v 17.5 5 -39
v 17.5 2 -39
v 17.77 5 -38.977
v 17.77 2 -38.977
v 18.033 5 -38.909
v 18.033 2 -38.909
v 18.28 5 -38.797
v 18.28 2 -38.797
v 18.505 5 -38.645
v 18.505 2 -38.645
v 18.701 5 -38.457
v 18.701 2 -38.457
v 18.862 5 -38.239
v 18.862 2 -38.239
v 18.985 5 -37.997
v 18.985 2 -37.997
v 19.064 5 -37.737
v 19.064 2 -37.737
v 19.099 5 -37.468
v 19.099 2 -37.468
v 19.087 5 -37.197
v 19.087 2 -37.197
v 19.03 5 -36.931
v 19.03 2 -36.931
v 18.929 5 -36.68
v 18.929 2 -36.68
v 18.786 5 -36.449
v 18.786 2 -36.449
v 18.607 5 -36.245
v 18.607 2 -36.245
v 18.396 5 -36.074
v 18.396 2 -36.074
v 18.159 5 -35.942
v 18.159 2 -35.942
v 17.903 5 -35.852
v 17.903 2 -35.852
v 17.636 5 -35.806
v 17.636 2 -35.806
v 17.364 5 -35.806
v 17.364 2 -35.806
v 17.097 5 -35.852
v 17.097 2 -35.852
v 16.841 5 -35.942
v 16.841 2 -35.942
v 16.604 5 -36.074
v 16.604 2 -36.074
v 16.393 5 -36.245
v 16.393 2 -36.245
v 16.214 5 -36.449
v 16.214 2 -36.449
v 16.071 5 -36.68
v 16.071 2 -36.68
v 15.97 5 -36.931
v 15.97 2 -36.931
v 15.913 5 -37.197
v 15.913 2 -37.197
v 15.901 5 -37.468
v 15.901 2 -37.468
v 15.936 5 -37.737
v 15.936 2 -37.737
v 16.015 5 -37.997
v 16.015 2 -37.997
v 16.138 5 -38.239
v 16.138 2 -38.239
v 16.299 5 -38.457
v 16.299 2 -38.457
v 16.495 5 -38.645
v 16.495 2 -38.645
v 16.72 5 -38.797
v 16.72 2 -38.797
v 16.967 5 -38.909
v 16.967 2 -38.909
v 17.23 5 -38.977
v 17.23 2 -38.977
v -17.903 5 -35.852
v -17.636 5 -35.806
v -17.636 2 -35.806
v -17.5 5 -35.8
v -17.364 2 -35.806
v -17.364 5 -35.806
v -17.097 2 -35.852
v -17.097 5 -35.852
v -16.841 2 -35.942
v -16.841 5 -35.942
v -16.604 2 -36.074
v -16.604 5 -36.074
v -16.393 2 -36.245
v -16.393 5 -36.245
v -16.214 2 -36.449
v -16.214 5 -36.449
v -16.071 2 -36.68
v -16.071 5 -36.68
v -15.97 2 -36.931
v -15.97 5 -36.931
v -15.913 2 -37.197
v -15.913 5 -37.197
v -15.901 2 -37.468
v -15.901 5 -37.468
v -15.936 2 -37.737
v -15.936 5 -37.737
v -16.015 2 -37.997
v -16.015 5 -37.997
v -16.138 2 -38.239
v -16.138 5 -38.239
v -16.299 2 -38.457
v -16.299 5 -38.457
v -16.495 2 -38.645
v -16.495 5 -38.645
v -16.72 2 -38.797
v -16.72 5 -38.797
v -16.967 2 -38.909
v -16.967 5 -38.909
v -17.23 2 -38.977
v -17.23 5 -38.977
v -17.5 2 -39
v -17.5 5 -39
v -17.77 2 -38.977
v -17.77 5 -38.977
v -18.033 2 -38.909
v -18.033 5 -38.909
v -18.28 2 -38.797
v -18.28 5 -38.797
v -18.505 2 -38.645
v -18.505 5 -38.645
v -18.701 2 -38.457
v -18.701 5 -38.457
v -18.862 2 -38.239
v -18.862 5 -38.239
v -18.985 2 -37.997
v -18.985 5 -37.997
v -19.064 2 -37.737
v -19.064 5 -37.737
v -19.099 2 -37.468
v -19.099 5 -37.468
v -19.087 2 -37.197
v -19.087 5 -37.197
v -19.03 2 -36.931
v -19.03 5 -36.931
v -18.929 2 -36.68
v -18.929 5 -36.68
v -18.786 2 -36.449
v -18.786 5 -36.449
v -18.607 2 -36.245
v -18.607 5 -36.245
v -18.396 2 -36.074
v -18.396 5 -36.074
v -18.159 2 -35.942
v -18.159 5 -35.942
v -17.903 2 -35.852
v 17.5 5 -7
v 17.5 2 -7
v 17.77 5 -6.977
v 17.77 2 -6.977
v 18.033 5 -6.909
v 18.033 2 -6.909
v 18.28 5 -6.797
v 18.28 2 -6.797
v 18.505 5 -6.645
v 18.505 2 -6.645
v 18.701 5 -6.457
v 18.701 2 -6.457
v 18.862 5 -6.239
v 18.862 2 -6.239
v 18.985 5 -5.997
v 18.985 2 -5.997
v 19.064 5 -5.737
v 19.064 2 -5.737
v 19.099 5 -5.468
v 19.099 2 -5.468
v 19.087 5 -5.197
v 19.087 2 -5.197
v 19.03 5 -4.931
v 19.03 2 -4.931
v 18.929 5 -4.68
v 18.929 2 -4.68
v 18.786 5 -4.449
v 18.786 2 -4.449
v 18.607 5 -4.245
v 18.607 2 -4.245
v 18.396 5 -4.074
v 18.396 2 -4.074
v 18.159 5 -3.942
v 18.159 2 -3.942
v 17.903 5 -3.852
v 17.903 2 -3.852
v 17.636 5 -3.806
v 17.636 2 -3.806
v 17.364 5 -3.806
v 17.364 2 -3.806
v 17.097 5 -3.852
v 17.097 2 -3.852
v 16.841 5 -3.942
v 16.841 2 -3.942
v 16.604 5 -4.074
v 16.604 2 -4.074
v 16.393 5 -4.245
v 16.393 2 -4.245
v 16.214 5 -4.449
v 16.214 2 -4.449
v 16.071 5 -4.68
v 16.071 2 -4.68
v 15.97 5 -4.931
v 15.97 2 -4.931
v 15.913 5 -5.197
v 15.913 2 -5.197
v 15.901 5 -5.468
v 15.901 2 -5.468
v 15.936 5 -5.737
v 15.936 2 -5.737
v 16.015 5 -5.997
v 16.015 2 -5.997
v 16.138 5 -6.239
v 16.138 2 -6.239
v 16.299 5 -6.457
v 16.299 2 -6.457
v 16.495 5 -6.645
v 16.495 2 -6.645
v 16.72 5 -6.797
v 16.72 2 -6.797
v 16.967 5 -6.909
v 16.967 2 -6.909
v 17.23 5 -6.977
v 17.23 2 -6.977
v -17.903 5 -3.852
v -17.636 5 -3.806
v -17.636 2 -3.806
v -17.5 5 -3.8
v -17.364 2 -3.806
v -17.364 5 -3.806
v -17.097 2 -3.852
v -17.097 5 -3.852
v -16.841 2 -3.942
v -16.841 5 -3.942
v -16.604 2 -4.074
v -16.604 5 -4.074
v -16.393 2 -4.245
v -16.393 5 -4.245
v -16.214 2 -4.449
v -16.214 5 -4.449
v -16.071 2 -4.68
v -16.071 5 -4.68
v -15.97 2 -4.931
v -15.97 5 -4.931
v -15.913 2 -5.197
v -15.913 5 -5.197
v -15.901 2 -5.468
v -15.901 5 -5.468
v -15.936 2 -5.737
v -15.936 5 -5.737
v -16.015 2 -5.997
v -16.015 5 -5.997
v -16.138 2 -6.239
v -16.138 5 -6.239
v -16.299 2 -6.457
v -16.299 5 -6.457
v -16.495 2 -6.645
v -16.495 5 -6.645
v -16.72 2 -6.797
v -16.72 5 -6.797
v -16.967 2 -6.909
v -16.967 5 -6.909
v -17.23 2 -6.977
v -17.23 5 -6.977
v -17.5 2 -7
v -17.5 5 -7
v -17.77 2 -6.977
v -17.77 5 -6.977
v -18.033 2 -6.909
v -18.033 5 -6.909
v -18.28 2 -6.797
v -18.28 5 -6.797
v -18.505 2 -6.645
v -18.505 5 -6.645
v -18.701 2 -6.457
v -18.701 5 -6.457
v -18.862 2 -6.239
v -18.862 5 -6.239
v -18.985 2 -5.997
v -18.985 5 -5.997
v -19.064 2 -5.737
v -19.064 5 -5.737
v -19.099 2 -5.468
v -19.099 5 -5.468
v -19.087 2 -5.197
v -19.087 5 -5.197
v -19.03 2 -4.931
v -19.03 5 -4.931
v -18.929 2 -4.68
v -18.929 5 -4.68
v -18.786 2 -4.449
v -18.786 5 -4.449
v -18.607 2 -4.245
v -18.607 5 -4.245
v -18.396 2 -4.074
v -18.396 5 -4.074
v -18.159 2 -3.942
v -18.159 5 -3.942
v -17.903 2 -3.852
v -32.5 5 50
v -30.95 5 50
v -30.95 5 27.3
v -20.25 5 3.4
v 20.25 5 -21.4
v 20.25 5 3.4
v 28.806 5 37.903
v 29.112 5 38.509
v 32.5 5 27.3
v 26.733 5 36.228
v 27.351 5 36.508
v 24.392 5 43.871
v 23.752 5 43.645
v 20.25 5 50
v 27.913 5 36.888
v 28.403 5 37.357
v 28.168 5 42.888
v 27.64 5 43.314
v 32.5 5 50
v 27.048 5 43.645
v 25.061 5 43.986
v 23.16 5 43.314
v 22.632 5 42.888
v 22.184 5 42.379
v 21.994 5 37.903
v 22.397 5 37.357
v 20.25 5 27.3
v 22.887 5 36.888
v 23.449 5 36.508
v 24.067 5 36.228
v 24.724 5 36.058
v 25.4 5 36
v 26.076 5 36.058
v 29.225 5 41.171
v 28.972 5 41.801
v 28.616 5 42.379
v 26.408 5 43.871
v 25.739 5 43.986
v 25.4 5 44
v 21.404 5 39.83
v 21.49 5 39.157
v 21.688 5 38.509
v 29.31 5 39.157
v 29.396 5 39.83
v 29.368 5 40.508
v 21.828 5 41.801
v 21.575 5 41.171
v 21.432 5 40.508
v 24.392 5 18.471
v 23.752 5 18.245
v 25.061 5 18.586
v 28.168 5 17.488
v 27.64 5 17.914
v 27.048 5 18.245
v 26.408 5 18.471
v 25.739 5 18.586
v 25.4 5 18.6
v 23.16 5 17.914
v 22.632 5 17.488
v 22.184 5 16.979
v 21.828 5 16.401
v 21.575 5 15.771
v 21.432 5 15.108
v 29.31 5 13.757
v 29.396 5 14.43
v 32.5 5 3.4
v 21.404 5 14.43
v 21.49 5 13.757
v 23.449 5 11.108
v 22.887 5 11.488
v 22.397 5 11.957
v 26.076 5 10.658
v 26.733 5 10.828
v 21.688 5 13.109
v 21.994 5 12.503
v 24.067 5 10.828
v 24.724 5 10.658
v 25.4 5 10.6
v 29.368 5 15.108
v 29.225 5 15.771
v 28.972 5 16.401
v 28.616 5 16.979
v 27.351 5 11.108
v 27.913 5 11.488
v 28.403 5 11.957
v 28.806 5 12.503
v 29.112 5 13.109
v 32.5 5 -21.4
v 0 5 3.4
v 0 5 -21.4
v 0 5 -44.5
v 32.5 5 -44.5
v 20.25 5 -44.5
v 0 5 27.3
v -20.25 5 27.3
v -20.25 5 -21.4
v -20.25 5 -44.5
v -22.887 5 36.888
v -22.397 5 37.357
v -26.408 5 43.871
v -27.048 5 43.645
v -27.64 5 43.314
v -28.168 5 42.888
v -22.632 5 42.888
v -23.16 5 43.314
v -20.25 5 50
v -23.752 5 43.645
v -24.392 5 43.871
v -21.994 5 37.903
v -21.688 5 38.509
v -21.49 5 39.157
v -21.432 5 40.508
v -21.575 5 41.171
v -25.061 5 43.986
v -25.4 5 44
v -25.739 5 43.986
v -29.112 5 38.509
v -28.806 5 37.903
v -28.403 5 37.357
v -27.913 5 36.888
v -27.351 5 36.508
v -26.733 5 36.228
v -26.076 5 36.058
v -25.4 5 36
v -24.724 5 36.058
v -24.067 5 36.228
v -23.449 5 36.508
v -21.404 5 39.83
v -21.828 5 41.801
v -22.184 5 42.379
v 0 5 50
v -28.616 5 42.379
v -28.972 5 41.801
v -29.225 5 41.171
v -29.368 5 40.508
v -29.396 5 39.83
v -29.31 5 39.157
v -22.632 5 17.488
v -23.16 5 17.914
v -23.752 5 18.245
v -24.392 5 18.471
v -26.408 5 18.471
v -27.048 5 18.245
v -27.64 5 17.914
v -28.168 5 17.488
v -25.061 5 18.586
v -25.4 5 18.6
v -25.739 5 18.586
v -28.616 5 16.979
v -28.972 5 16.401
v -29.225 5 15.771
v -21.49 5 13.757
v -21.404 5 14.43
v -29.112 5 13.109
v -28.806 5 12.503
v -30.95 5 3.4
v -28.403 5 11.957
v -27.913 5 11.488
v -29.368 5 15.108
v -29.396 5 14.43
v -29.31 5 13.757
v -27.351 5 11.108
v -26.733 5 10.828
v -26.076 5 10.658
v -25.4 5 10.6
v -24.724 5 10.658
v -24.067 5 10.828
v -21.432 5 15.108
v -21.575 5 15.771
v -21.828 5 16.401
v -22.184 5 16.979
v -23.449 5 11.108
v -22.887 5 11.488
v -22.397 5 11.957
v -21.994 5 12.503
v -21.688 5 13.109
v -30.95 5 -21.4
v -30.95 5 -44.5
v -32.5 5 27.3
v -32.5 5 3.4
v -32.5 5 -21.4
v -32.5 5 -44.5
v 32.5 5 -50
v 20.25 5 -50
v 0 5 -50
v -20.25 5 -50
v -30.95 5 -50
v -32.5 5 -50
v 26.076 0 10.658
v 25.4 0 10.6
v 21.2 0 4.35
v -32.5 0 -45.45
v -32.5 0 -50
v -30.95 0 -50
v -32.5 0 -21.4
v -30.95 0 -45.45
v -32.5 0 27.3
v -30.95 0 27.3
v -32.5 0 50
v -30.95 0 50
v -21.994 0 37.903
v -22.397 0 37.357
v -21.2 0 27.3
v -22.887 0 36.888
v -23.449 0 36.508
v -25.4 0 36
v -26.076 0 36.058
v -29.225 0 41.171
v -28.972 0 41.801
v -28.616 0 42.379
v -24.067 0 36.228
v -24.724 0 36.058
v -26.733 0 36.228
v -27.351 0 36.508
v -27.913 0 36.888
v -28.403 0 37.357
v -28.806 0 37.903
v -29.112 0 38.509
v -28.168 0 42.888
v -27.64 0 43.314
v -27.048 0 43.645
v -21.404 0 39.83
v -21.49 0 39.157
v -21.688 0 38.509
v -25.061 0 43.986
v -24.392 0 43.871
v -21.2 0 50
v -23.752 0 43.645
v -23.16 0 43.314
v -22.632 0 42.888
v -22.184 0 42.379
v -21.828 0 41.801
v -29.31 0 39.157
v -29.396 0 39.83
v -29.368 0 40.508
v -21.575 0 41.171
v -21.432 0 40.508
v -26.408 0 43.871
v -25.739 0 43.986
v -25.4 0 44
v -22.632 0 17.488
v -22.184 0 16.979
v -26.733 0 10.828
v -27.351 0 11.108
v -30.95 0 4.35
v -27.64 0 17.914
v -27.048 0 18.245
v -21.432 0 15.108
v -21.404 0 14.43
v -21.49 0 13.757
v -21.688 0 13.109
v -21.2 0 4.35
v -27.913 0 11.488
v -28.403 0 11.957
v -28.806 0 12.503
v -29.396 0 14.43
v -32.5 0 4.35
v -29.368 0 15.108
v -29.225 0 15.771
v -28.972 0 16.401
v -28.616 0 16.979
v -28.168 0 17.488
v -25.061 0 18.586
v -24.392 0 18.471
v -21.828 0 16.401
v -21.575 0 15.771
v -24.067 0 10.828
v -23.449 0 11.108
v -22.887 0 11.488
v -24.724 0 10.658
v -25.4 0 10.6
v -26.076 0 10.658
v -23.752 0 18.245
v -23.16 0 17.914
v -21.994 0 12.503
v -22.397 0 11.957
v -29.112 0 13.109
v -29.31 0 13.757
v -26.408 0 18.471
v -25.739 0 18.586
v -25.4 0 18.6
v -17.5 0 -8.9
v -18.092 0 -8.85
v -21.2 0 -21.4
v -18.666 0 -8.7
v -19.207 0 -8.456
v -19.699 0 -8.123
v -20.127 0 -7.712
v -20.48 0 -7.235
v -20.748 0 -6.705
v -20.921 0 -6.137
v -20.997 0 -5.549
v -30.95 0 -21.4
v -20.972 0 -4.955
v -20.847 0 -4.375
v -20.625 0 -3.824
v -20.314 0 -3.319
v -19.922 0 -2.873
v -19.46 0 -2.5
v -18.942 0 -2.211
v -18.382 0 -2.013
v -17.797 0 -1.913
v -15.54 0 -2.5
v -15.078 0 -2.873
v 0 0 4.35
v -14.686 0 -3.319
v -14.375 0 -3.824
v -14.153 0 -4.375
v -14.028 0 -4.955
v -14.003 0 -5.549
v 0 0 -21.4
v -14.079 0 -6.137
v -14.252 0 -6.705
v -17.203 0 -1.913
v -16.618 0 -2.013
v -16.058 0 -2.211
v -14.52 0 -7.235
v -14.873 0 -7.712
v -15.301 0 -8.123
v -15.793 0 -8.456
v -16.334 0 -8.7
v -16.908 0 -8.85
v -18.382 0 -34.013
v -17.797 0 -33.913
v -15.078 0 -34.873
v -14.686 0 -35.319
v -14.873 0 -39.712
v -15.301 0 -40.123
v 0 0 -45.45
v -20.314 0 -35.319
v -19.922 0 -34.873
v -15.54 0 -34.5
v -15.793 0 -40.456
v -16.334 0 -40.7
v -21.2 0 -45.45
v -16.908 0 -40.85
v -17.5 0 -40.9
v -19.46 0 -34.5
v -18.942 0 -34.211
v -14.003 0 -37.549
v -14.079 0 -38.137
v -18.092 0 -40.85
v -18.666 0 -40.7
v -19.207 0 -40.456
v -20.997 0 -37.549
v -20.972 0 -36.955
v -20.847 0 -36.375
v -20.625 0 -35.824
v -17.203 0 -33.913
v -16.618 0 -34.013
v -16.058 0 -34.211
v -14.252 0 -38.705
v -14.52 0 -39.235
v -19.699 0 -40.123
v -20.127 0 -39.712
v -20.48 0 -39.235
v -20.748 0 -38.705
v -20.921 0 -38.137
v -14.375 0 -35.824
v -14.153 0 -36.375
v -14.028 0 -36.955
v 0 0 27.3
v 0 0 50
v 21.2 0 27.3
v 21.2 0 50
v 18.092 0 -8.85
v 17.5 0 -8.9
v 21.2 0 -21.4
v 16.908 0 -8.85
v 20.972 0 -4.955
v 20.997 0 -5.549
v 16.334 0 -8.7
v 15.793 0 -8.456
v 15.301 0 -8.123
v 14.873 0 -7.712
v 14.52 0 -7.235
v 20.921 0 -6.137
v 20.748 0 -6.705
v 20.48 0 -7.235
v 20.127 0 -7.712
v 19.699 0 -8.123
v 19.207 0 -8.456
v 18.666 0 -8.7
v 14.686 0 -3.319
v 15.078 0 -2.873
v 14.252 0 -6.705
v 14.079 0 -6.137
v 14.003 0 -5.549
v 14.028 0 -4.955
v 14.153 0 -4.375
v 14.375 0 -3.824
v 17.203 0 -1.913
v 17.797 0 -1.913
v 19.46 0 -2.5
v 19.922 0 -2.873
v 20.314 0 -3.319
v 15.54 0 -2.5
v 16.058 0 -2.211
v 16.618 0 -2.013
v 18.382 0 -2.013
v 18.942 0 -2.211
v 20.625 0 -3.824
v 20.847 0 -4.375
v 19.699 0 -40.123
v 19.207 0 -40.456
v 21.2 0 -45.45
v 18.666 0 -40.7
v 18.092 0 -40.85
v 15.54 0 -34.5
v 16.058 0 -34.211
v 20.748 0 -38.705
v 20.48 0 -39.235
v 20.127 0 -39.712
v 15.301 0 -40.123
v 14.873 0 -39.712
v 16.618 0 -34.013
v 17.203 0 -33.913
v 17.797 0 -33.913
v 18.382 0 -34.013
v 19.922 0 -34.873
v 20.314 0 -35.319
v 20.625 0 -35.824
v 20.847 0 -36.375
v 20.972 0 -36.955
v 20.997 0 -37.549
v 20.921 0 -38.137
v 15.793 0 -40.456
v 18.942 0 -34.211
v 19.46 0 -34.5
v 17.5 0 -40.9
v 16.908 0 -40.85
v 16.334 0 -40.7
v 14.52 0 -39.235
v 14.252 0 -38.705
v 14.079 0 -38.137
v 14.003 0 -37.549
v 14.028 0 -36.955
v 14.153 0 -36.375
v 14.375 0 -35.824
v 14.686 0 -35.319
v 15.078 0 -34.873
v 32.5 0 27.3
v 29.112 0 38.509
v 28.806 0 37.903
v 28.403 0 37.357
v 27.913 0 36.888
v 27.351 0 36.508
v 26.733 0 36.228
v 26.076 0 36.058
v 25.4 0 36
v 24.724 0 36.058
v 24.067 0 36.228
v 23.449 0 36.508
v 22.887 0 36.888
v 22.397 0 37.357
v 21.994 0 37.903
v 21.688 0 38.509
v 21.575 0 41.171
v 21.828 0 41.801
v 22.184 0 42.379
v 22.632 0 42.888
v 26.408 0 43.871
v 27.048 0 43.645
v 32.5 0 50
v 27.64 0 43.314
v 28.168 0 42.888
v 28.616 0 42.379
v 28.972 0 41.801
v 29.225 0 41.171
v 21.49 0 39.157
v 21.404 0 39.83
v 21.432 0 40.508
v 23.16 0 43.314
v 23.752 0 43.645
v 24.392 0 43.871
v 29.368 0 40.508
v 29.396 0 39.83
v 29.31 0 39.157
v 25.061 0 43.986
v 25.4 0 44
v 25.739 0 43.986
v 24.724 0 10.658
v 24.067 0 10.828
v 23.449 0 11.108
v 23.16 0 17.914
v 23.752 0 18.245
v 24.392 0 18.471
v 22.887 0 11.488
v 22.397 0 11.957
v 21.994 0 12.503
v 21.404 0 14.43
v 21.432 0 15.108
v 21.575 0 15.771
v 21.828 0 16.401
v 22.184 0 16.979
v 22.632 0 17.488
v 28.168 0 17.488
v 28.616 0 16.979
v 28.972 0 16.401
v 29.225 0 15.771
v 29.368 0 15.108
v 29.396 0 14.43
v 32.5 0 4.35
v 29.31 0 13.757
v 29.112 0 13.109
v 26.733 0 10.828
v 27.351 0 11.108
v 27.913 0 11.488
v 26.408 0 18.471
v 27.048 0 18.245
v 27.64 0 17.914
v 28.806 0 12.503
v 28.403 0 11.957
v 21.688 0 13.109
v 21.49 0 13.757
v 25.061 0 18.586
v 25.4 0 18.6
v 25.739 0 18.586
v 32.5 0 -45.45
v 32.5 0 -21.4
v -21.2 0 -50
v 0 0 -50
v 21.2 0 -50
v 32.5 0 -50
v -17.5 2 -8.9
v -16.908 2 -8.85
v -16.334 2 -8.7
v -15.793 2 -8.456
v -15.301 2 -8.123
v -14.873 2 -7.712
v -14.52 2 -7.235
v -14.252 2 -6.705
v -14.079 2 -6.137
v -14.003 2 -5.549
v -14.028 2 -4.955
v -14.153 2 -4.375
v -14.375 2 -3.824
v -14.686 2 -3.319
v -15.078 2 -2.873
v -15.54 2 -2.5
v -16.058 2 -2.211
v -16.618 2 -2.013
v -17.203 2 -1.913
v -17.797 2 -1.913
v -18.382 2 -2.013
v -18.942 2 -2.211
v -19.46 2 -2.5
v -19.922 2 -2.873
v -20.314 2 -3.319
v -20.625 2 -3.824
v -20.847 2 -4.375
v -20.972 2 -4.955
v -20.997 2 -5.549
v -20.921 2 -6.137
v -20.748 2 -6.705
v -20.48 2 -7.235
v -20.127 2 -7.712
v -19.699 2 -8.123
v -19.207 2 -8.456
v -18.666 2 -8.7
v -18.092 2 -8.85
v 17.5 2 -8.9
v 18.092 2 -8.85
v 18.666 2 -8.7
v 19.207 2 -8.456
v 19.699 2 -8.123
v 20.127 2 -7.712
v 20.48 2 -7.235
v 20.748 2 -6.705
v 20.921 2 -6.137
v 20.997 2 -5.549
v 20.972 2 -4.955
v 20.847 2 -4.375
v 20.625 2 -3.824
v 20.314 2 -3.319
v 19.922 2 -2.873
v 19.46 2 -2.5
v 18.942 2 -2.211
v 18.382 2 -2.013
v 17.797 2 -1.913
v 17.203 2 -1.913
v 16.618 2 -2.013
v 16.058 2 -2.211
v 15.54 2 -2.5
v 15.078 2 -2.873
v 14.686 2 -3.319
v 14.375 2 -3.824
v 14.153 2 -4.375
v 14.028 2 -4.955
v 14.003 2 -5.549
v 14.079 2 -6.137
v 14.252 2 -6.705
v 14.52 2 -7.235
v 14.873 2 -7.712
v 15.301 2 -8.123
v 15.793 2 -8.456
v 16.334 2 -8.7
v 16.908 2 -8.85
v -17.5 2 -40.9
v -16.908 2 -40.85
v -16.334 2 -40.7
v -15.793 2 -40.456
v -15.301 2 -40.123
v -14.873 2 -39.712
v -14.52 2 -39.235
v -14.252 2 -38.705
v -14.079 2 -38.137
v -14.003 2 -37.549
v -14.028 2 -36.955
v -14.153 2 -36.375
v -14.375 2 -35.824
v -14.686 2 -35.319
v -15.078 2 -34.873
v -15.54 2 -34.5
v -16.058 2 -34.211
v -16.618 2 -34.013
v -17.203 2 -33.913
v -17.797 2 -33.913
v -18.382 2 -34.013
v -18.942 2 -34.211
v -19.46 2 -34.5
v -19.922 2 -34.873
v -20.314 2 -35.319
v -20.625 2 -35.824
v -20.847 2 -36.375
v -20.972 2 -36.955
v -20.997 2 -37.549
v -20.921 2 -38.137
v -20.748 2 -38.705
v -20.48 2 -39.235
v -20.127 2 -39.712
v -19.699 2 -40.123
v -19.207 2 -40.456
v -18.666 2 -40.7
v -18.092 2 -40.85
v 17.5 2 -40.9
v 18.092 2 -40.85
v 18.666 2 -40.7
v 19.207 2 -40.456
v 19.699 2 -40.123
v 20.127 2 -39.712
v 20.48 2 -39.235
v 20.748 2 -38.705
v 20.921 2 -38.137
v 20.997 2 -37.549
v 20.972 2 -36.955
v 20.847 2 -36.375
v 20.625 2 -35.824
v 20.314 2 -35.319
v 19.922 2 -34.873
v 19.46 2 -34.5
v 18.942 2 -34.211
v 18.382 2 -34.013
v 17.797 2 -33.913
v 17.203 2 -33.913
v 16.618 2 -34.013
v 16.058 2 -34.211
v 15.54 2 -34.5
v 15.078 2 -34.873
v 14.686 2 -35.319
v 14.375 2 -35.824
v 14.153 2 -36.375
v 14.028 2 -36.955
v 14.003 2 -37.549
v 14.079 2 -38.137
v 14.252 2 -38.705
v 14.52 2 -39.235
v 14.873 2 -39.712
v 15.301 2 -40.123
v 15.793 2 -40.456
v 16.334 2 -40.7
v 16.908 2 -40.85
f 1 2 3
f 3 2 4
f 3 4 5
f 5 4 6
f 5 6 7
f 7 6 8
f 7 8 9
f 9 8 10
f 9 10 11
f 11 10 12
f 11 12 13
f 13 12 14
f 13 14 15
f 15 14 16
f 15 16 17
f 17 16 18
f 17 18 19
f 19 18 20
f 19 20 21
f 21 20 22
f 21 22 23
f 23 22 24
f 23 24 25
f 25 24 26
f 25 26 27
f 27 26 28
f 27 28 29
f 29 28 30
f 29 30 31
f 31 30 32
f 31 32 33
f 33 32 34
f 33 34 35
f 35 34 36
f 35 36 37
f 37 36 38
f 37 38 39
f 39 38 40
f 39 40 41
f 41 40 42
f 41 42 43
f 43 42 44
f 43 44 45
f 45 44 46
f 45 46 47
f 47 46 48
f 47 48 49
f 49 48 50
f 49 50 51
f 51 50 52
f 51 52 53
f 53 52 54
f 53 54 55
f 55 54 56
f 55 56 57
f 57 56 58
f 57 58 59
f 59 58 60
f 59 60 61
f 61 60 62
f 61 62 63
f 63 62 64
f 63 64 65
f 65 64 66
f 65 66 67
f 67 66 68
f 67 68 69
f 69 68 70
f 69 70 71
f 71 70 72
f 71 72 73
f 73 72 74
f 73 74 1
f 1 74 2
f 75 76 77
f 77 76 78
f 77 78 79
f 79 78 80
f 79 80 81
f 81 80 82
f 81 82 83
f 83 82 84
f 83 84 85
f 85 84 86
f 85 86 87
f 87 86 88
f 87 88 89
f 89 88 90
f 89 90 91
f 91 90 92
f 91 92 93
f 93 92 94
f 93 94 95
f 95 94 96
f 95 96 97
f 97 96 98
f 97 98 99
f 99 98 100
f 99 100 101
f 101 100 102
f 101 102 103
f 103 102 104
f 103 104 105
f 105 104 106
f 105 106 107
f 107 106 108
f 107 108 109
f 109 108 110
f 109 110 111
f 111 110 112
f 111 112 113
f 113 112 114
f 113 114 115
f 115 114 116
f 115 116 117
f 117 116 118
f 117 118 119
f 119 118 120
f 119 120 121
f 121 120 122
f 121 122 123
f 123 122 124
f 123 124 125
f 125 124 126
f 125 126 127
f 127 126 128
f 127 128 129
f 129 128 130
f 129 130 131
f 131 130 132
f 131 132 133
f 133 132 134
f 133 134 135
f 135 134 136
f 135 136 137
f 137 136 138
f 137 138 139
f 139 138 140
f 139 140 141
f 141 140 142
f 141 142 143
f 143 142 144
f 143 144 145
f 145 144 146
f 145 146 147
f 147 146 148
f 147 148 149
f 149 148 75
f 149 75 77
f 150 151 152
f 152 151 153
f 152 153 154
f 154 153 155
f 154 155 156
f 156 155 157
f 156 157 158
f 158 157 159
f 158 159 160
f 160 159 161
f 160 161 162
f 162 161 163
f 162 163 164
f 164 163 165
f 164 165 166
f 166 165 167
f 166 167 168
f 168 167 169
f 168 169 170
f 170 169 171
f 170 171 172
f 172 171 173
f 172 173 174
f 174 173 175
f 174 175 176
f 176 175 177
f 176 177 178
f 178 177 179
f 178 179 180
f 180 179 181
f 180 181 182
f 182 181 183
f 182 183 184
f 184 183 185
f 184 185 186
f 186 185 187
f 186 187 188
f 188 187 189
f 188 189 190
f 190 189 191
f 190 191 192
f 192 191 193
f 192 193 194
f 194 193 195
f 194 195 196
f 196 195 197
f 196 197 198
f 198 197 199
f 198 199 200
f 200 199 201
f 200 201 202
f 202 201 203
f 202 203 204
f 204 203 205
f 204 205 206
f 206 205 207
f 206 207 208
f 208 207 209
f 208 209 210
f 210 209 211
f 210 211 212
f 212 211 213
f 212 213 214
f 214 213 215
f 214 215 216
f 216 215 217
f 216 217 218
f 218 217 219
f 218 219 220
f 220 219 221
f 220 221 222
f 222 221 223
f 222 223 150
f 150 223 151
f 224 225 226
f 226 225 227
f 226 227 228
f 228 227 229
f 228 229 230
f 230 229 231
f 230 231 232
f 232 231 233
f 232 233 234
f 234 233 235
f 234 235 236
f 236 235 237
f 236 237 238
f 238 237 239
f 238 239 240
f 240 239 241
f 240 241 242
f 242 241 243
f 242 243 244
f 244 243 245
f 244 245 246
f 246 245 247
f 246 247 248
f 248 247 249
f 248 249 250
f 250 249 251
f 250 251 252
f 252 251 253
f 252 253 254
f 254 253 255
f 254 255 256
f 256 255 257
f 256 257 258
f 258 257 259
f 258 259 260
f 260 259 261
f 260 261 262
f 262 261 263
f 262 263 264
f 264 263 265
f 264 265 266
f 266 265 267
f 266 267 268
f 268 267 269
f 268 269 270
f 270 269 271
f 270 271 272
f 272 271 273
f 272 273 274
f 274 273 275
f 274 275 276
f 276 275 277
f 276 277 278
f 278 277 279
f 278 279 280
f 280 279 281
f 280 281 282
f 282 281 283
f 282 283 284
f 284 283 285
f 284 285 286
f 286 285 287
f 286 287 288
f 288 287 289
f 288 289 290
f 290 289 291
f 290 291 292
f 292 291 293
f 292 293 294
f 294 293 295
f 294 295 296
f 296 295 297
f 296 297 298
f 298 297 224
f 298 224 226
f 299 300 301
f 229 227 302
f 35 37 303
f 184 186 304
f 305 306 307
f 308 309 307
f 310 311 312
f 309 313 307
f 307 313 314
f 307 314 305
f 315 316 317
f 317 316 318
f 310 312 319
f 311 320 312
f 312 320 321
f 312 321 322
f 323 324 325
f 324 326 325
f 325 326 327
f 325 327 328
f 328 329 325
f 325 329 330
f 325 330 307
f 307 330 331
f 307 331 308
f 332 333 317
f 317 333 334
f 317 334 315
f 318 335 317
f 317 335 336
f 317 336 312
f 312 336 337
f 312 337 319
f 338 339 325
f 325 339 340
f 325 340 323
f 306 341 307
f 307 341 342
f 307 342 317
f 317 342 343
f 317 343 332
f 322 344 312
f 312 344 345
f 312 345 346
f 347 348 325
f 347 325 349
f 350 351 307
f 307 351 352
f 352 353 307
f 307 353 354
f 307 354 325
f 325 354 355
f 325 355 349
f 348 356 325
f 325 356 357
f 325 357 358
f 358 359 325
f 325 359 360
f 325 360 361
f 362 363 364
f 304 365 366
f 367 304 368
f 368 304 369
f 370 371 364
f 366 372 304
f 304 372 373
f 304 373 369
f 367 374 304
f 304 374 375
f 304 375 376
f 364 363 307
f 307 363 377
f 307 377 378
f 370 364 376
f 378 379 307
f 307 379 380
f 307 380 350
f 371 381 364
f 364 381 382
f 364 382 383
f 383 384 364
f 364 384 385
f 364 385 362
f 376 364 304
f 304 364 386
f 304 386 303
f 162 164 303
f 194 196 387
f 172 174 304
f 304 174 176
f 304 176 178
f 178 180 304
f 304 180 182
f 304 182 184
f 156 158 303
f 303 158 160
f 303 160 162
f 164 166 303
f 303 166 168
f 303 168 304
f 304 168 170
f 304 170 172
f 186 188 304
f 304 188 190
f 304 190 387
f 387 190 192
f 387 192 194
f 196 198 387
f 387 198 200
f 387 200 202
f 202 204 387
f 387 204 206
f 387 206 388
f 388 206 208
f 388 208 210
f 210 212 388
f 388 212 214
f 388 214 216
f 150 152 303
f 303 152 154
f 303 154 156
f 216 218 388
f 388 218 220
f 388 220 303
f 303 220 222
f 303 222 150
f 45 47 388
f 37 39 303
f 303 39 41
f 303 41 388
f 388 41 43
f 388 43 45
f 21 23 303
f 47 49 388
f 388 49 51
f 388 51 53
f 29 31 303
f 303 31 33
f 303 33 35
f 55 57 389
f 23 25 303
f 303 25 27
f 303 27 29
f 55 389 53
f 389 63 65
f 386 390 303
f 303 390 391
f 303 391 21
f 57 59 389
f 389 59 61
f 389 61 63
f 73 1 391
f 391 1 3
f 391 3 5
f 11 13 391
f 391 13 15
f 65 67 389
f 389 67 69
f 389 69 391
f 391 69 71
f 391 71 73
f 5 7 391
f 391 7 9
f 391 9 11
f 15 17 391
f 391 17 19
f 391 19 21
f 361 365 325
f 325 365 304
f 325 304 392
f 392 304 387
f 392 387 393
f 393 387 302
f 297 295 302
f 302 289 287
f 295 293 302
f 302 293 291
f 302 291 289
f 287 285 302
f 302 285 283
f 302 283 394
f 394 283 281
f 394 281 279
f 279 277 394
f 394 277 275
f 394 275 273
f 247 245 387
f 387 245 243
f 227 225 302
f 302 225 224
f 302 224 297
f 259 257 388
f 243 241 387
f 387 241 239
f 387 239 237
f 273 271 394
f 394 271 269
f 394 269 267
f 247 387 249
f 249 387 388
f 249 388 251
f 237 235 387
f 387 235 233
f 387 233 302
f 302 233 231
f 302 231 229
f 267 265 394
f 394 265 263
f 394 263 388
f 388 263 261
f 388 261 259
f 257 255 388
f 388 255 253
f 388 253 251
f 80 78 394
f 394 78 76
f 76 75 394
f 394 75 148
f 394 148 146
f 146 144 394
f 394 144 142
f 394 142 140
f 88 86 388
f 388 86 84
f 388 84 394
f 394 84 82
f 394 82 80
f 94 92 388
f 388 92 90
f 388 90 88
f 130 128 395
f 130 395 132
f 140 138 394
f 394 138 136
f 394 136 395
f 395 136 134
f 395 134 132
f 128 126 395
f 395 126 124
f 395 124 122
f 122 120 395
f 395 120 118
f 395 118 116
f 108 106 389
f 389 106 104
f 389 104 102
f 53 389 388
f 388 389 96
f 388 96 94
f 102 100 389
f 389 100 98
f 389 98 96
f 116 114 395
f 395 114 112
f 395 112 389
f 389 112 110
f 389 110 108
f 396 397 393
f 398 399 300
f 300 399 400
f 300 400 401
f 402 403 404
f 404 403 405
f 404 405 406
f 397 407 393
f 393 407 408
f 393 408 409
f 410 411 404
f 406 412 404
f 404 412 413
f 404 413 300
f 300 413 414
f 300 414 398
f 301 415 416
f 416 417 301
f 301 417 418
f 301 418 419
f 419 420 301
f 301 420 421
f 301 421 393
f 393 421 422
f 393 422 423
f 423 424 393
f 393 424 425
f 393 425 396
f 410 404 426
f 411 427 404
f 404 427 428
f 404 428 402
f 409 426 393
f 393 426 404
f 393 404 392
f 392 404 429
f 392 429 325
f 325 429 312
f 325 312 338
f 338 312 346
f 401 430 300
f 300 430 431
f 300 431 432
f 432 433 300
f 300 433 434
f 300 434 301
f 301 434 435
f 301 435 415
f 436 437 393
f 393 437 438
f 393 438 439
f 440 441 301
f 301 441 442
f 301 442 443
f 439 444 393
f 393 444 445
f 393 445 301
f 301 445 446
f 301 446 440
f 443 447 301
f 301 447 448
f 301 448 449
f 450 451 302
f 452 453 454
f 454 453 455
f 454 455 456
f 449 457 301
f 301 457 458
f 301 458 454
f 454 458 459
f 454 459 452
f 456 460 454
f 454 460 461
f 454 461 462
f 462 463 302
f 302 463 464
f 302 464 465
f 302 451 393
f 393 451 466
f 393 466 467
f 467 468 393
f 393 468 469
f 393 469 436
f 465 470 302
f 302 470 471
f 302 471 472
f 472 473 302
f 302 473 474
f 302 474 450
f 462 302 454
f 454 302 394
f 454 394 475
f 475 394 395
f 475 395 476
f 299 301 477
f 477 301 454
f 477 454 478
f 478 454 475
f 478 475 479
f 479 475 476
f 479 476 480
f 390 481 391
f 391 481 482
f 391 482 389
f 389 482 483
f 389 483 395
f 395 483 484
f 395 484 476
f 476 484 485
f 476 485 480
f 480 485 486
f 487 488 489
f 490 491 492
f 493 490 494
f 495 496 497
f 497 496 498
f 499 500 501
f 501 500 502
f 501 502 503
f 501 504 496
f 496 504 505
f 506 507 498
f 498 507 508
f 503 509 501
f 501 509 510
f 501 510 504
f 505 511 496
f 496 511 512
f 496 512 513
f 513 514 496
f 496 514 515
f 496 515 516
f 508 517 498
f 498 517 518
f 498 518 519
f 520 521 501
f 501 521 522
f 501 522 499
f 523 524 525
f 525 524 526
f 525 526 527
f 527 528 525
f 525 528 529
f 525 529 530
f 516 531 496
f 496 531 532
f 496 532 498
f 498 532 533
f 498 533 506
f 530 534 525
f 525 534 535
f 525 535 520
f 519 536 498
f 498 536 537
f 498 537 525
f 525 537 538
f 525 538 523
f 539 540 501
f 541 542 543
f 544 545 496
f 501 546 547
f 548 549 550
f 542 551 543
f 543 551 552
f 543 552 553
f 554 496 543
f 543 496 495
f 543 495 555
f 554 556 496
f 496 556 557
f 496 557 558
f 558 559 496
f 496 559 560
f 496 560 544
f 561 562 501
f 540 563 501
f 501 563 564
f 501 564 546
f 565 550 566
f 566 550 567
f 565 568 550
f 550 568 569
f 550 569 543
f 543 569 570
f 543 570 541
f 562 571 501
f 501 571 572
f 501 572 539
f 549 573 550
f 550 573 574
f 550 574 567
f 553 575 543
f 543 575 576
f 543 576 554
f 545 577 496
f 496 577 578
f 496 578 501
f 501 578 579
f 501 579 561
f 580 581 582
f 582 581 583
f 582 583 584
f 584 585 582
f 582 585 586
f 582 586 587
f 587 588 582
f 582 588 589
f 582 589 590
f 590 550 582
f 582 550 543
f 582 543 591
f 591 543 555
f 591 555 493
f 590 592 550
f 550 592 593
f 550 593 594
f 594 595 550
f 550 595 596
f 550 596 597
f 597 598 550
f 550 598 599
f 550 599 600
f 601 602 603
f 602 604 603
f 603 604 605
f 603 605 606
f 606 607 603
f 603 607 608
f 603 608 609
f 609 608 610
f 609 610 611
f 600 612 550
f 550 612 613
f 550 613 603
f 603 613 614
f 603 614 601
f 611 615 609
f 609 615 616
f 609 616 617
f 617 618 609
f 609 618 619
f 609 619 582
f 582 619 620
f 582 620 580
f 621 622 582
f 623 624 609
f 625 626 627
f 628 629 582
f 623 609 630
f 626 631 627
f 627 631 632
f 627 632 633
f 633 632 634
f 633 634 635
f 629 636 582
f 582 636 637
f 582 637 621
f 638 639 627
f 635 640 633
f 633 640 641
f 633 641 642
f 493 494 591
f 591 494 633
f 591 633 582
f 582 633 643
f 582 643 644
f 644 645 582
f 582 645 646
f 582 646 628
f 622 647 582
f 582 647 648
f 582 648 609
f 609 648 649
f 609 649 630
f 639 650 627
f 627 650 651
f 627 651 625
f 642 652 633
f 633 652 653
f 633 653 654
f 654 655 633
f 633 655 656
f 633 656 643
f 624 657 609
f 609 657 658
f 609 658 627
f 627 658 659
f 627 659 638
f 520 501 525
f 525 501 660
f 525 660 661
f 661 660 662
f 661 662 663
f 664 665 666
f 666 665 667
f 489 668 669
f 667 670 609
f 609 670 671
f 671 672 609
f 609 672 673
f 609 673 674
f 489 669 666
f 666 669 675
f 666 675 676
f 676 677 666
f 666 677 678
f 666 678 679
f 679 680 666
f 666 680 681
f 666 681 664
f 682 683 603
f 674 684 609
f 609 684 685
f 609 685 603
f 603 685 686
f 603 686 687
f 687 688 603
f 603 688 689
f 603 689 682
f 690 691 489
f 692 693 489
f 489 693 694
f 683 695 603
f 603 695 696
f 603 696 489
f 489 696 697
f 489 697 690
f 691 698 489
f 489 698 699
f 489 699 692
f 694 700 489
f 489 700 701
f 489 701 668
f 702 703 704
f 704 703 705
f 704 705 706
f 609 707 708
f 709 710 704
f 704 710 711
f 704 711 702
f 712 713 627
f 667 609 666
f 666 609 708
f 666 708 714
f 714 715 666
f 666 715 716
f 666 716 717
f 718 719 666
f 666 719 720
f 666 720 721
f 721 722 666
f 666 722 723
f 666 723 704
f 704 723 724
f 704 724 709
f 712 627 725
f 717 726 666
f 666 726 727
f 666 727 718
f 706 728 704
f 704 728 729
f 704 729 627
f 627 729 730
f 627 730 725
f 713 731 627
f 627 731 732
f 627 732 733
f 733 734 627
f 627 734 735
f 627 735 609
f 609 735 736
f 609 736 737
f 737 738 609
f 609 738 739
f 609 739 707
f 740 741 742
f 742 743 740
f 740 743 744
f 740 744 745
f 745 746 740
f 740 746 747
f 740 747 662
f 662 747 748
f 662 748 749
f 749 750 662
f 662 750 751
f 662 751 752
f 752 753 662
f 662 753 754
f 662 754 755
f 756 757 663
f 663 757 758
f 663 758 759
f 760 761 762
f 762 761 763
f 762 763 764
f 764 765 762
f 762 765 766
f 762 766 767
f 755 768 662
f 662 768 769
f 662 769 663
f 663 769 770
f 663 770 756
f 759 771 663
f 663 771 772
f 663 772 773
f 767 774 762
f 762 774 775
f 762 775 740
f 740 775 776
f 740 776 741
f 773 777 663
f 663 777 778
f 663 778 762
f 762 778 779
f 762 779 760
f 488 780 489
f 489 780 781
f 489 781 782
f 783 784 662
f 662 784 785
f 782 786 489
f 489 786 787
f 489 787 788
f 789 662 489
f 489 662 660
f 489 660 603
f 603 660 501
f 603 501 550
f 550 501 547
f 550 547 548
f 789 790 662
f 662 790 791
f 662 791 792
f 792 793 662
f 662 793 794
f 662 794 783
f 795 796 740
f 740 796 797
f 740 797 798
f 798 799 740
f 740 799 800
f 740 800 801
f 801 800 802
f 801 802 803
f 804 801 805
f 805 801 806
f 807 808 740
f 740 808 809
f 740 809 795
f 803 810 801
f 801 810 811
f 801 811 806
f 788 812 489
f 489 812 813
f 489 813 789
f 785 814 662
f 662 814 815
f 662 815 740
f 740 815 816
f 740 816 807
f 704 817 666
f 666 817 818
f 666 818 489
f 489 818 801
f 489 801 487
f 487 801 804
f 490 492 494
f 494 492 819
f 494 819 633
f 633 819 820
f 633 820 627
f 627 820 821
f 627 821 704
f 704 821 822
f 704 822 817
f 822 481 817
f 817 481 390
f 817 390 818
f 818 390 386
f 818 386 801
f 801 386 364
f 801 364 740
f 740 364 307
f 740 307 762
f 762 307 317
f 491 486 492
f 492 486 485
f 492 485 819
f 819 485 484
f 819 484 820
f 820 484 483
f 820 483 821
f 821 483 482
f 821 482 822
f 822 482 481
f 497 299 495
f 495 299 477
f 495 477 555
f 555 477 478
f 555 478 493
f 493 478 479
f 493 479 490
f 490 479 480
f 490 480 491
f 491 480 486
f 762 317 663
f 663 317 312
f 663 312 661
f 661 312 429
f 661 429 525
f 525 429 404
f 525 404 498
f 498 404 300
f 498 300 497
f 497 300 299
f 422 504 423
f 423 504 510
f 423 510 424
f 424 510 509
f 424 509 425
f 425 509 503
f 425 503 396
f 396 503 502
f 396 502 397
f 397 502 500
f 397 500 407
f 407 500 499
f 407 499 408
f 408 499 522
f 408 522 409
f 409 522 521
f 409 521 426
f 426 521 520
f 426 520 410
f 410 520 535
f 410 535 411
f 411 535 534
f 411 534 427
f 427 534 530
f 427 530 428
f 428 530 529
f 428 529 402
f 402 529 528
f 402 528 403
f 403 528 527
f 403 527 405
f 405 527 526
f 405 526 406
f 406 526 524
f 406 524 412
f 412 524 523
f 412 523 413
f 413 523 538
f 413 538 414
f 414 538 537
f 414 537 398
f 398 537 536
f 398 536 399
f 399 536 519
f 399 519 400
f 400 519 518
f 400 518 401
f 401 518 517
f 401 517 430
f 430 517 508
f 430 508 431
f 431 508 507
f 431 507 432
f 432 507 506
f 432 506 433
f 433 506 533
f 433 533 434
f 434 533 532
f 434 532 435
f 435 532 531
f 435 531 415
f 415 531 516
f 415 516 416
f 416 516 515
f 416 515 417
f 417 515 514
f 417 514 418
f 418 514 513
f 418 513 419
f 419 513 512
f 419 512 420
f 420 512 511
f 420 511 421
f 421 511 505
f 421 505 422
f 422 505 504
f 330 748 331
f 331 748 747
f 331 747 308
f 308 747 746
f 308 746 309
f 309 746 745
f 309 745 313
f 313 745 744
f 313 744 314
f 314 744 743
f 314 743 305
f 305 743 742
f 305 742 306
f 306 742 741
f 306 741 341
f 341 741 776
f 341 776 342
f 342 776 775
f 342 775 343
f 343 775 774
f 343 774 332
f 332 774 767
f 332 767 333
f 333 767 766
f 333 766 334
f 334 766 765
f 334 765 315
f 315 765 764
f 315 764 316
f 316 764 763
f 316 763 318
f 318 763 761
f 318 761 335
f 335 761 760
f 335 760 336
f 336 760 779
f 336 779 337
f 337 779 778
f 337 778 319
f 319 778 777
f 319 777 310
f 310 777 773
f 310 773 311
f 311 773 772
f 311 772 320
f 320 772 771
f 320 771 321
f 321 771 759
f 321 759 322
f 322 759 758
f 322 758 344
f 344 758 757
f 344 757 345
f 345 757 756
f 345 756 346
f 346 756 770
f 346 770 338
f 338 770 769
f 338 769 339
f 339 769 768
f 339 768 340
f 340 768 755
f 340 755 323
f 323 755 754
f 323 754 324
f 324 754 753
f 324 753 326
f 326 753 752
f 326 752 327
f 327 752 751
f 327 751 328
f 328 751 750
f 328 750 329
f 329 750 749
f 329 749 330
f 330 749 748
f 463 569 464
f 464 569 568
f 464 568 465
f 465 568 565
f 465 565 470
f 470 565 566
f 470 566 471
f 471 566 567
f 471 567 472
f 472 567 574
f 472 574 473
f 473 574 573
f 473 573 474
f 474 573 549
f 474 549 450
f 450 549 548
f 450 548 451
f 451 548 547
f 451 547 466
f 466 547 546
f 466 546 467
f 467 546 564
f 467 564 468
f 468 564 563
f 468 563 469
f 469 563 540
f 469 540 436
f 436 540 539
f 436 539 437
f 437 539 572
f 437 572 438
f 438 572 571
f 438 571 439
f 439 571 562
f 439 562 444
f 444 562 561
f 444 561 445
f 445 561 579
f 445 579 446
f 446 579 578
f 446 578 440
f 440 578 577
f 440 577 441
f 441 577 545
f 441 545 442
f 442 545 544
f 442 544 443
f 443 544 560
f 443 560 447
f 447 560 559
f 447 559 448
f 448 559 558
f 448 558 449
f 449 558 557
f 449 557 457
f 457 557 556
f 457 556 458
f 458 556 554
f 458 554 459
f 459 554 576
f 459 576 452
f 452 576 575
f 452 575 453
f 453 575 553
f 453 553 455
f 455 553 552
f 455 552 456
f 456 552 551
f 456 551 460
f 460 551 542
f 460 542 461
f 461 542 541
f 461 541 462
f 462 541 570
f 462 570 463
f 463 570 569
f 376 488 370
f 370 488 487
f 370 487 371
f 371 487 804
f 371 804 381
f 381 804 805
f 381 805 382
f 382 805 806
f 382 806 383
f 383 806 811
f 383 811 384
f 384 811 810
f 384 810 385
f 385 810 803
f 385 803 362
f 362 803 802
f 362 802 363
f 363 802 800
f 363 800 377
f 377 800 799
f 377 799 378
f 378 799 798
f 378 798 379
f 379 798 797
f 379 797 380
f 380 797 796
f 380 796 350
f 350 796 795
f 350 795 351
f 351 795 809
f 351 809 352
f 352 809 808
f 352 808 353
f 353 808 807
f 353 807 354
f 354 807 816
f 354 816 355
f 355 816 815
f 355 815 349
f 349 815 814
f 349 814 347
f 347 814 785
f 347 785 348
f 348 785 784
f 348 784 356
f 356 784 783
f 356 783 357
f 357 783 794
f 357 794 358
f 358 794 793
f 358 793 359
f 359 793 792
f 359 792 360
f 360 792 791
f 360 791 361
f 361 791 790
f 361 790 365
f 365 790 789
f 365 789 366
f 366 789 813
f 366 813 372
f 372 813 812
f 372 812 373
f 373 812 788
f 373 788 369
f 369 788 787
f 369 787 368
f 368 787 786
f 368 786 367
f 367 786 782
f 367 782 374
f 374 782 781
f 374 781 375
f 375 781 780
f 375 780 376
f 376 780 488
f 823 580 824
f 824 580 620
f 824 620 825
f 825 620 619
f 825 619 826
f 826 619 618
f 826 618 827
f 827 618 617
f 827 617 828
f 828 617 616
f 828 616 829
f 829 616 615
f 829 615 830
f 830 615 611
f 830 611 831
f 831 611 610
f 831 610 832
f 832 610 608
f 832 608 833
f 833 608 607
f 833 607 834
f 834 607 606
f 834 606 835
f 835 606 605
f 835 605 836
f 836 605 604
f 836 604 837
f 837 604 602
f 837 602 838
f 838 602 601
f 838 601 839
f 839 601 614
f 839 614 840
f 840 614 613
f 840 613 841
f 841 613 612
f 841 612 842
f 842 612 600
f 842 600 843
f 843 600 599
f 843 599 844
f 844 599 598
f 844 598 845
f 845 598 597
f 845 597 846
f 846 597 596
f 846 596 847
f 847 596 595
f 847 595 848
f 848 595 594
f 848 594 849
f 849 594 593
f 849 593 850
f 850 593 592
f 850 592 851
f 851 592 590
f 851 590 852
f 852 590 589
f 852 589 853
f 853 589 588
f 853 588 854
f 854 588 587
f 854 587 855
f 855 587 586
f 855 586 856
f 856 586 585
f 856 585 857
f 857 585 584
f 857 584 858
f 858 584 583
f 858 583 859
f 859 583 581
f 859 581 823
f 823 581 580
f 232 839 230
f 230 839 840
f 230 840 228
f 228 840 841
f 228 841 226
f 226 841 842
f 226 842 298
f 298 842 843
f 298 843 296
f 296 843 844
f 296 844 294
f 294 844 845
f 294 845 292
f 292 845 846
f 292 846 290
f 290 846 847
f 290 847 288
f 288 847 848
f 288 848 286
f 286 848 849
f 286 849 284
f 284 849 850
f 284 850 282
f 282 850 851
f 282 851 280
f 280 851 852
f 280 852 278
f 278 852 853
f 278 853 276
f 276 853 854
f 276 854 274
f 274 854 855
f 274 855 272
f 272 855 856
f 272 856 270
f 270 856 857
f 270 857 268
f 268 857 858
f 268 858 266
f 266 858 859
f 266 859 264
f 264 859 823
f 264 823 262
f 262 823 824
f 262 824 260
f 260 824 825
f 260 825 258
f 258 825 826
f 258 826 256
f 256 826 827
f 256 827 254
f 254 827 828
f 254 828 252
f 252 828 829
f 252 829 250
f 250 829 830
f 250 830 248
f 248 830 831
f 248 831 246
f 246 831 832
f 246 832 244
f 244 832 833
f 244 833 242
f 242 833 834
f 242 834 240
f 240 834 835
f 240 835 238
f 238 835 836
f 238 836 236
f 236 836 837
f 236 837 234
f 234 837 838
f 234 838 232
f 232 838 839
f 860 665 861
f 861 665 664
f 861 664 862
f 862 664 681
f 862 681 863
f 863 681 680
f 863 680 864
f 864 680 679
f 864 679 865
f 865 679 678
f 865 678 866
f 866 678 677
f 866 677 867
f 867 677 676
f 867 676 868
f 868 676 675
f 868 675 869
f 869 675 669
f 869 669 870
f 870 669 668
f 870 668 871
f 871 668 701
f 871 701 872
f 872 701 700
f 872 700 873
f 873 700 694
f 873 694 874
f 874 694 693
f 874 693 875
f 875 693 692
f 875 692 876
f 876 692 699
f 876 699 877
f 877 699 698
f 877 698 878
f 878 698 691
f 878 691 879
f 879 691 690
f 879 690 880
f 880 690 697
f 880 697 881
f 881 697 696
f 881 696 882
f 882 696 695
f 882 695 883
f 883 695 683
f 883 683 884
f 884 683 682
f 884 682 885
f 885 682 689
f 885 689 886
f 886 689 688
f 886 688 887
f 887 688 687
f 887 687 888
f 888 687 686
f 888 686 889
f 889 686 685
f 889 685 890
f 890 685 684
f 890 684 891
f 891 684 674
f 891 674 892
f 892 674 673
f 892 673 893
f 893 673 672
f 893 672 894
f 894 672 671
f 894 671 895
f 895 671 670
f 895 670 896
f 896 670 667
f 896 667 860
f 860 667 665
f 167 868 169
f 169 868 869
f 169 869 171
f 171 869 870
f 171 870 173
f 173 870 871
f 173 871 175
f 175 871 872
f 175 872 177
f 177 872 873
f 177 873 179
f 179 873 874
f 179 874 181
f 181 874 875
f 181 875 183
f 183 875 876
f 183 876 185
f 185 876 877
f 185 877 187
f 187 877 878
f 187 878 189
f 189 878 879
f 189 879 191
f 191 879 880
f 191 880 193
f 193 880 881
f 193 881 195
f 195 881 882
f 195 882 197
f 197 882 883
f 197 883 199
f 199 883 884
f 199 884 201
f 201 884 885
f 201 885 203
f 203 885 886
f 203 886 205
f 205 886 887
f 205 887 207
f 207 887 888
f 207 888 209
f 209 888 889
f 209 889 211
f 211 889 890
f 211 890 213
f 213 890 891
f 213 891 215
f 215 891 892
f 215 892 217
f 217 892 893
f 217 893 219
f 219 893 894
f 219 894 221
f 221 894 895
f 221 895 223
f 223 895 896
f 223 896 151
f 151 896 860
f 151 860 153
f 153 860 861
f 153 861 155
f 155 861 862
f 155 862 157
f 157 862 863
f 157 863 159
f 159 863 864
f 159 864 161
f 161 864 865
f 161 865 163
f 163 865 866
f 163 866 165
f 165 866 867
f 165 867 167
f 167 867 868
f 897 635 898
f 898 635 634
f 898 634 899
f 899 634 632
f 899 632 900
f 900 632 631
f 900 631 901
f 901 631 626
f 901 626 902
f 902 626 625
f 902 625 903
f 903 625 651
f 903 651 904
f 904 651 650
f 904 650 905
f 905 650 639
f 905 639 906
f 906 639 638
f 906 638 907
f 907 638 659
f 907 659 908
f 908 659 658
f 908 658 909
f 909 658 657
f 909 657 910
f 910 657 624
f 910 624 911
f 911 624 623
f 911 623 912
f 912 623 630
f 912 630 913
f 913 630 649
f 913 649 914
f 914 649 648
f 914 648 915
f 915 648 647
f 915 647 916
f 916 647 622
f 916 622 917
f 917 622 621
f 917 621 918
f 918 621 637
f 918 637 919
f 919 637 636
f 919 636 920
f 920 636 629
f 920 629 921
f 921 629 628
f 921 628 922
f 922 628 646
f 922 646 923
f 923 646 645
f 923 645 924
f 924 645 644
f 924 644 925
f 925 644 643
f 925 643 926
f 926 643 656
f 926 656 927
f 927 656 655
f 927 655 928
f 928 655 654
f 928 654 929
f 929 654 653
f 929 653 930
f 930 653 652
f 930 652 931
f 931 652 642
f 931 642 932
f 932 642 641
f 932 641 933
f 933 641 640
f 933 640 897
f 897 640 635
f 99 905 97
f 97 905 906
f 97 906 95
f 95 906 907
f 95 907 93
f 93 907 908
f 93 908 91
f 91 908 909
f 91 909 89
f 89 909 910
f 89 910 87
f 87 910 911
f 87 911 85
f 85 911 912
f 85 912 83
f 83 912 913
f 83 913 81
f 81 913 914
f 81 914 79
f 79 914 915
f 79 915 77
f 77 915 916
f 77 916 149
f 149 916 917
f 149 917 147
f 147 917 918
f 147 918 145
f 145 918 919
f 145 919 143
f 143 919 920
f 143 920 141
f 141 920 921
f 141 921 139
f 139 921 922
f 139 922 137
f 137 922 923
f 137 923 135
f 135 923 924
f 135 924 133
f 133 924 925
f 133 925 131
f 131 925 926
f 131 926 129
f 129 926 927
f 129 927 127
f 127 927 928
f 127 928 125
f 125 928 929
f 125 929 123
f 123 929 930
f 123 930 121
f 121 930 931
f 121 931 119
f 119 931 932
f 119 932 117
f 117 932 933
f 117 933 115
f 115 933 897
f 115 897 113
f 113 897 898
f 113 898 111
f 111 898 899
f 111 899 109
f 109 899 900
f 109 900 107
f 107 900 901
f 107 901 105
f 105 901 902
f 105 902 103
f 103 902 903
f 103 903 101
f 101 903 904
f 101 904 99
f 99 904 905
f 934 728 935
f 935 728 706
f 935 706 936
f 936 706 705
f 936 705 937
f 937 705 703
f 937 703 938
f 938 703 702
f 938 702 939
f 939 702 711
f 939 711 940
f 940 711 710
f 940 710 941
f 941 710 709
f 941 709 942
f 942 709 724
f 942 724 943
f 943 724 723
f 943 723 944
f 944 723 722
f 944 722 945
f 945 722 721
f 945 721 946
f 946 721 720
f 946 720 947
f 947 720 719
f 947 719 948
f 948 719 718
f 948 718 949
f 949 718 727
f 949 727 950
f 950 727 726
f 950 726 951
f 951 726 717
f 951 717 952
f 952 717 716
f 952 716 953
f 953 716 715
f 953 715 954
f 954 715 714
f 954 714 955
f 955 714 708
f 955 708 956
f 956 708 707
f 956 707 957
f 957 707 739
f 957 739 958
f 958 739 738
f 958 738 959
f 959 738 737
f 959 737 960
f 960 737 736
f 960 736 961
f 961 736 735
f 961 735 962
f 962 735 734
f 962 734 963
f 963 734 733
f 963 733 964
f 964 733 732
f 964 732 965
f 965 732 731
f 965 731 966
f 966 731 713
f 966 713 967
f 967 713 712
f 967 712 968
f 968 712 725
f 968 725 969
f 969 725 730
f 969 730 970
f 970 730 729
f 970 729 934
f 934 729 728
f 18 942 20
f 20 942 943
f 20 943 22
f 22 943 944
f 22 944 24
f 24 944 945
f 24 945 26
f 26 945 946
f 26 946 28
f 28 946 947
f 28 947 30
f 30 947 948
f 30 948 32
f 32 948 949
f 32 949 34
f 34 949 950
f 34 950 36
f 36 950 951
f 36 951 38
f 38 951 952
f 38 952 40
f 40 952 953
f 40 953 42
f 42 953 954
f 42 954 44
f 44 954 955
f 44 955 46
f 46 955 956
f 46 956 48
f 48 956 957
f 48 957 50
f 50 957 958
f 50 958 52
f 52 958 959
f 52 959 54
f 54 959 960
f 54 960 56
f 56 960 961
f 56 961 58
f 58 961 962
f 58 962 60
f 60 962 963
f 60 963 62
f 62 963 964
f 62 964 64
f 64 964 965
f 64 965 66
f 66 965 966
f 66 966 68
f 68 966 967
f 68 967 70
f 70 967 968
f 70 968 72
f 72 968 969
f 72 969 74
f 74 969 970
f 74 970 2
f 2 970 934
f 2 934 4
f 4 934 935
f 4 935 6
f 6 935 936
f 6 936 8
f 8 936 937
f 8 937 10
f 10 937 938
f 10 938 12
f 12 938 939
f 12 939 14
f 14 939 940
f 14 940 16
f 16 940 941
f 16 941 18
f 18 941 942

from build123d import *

# Parameters (mm, degrees)
SKETCH1_W           = 65
SKETCH1_H           = 100
SKETCH1_R           = 4
SKETCH1_R_2         = 1.6
BOSS_EXTRUDE1_DEPTH = 5
SKETCH3_R           = 3.5
CUT_EXTRUDE1_DEPTH  = 2


with BuildPart() as part:
    # Sketch1 → Boss-Extrude1 (new body)
    with BuildSketch(Plane(origin=(0, 0, 0), x_dir=(1, 0, 0), z_dir=(0, 1, 0))):
        Rectangle(SKETCH1_W, SKETCH1_H)
        with Locations((-25.4, -40)):
            Circle(SKETCH1_R, mode=Mode.SUBTRACT)
        with Locations((25.4, -40)):
            Circle(SKETCH1_R, mode=Mode.SUBTRACT)
        with Locations((25.4, -14.6)):
            Circle(SKETCH1_R, mode=Mode.SUBTRACT)
        with Locations((-25.4, -14.6)):
            Circle(SKETCH1_R, mode=Mode.SUBTRACT)
        with Locations((-17.5, 5.4)):
            Circle(SKETCH1_R_2, mode=Mode.SUBTRACT)
        with Locations((17.5, 37.4)):
            Circle(SKETCH1_R_2, mode=Mode.SUBTRACT)
        with Locations((-17.5, 37.4)):
            Circle(SKETCH1_R_2, mode=Mode.SUBTRACT)
        with Locations((17.5, 5.4)):
            Circle(SKETCH1_R_2, mode=Mode.SUBTRACT)
    extrude(amount=BOSS_EXTRUDE1_DEPTH)

    # Sketch3 → Cut-Extrude1 (cut)
    with BuildSketch(Plane.XZ):
        with Locations((-17.5, -5.4)):
            Circle(SKETCH3_R)
        with Locations((17.5, -5.4)):
            Circle(SKETCH3_R)
        with Locations((-17.5, -37.4)):
            Circle(SKETCH3_R)
        with Locations((17.5, -37.4)):
            Circle(SKETCH3_R)
    extrude(amount=-CUT_EXTRUDE1_DEPTH, mode=Mode.SUBTRACT)


solid = part.part
